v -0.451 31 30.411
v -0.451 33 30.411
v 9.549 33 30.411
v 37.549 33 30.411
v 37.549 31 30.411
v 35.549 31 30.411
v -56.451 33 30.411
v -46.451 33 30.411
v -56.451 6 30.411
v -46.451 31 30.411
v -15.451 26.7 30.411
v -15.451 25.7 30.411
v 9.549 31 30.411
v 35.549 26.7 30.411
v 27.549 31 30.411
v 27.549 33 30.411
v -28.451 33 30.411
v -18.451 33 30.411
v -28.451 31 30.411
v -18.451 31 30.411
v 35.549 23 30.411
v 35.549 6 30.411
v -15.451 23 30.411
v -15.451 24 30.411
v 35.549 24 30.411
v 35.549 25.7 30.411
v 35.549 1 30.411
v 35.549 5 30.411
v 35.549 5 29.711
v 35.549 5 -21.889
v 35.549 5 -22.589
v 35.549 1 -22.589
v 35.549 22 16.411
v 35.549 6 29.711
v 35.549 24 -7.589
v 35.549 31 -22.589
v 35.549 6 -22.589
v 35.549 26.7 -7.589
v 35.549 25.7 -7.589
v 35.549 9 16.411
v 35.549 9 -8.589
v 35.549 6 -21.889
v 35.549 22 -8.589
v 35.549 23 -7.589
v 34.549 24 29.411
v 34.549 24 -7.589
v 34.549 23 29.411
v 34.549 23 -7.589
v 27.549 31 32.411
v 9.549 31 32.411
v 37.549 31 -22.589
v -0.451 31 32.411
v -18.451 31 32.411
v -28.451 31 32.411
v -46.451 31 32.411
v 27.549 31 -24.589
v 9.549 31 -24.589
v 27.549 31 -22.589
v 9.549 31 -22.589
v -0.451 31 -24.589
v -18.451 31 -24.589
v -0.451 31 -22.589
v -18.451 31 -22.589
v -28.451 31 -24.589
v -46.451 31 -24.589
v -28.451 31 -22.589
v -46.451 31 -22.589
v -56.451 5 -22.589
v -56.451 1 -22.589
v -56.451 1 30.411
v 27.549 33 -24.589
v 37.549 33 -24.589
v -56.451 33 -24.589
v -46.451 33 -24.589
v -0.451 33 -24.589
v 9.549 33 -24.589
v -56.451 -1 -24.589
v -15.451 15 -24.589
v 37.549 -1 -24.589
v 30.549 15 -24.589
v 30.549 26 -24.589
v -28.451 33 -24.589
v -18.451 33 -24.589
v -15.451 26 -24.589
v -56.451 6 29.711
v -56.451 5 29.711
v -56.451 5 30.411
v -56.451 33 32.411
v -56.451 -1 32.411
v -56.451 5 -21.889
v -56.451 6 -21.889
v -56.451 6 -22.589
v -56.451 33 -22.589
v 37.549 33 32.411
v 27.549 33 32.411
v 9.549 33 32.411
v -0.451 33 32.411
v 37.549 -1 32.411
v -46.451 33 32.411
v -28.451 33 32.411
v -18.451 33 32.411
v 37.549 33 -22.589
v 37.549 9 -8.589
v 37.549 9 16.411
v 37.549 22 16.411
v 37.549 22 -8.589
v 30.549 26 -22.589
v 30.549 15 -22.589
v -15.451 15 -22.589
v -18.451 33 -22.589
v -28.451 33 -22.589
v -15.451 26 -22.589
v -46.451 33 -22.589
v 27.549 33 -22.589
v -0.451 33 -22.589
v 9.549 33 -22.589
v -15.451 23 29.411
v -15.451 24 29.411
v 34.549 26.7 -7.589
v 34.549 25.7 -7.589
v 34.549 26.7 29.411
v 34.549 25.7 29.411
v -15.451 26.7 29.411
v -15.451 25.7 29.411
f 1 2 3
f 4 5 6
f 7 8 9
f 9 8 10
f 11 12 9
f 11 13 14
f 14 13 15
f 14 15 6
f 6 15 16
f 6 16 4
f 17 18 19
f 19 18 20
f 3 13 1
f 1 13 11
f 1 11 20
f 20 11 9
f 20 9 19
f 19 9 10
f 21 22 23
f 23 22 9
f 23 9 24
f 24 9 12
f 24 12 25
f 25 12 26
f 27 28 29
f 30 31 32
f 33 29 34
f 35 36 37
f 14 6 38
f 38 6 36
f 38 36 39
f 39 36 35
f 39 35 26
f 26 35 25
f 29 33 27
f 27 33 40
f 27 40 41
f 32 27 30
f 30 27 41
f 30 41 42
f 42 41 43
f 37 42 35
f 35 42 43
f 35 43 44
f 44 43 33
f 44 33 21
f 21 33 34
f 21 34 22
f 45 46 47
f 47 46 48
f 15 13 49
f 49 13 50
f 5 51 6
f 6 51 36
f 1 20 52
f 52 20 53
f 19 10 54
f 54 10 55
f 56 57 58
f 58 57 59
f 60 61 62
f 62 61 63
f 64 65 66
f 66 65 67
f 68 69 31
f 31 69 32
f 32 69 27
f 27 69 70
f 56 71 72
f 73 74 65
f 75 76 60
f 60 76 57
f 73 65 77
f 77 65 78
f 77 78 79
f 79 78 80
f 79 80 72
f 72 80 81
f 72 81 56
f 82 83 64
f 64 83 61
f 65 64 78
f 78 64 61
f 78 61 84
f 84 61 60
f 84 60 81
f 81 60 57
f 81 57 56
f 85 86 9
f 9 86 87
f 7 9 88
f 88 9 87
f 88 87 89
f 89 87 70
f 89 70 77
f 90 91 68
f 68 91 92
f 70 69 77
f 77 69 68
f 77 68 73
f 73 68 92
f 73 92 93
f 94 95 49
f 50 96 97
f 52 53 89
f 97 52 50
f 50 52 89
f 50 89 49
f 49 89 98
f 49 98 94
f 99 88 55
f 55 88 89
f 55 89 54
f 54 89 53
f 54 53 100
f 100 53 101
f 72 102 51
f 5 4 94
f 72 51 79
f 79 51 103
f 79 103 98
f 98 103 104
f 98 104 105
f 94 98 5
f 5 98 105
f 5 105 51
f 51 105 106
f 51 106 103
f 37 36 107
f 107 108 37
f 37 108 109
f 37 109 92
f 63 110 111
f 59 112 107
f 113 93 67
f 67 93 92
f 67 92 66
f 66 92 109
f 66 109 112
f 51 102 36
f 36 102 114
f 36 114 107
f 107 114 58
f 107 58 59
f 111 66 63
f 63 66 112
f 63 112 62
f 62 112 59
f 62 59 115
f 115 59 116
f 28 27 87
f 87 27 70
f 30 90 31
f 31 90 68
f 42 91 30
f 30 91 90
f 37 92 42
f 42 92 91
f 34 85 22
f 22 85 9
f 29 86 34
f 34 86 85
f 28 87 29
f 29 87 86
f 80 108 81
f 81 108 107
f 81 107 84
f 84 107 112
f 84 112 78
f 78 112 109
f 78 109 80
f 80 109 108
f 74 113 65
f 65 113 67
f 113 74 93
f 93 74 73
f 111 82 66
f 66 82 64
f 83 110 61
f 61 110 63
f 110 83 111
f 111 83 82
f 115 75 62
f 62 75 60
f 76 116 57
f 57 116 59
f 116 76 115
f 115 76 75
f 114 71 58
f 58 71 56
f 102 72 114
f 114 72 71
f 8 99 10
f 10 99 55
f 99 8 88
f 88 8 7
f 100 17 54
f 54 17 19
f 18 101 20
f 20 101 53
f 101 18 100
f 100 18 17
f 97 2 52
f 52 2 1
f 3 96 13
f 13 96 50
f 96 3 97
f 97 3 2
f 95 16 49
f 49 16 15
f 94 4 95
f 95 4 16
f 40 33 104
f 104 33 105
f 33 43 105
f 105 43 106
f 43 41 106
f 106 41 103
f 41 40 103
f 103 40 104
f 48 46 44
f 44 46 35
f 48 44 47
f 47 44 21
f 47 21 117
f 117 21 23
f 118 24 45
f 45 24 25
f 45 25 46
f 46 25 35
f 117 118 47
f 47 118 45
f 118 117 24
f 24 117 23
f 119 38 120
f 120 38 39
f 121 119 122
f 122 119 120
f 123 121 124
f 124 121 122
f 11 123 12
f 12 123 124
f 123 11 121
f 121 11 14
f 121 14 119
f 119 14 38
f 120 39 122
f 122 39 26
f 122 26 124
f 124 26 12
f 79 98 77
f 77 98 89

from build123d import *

# Parameters (mm, degrees)
SKETCH1_W           = 94
SKETCH1_H           = 57
BOSS_EXTRUDE1_DEPTH = 1
BOSS_EXTRUDE3_DEPTH = 30
SKETCH5_W           = 0.7
SKETCH5_H           = 1
BOSS_EXTRUDE4_DEPTH = 92
SKETCH6_W           = 46
SKETCH6_H           = 11
CUT_EXTRUDE2_DEPTH  = 30
SKETCH7_W           = 10
SKETCH7_H           = 2
BOSS_EXTRUDE5_DEPTH = 2
SKETCH8_W           = 25
SKETCH8_H           = 13
CUT_EXTRUDE3_DEPTH  = 2
SKETCH9_W           = 38
SKETCH9_H           = 1
BOSS_EXTRUDE6_DEPTH = 1
SKETCH10_W          = 1
SKETCH10_H          = 1
BOSS_EXTRUDE7_DEPTH = 50
BOSS_EXTRUDE8_DEPTH = 1
SKETCH13_W          = 94
SKETCH13_H          = 57
BOSS_EXTRUDE9_DEPTH = 1


with BuildPart() as part:
    # Sketch1 → Boss-Extrude1 (new body)
    with BuildSketch(Plane(origin=(0, 0, 0), x_dir=(1, 0, 0), z_dir=(0, 1, 0))):
        with Locations((-9.450515464, -3.911340206)):
            Rectangle(SKETCH1_W, SKETCH1_H)
    extrude(amount=BOSS_EXTRUDE1_DEPTH)

    # Sketch2 → Boss-Extrude3 (add)
    with BuildSketch(Plane(origin=(0, 1, 0), x_dir=(1, 0, 0), z_dir=(0, 1, 0))):
        Polygon((-56.450515464, 24.588659794), (37.549484536, 24.588659794), (37.549484536, -32.411340206), (-56.450515464, -32.411340206), (-56.450515464, -30.411340206), (-54.450515464, -30.411340206), (35.549484536, -30.411340206), (35.549484536, 22.588659794), (-54.450515464, 22.588659794), (-56.450515464, 22.588659794), align=None)
    extrude(amount=BOSS_EXTRUDE3_DEPTH)

    # Sketch5 → Boss-Extrude4 (add)
    with BuildSketch(Plane.ZY.offset(56.450515464)):
        with Locations((-22.238659794, 5.5)):
            Rectangle(SKETCH5_W, SKETCH5_H)
        with Locations((30.061340206, 5.5)):
            Rectangle(SKETCH5_W, SKETCH5_H)
    extrude(amount=-BOSS_EXTRUDE4_DEPTH)

    # Sketch6 → Cut-Extrude2 (cut)
    with BuildSketch(Plane(origin=(0, 0, -24.588659794), x_dir=(-1, 0, 0), z_dir=(0, 0, -1))):
        with Locations((-7.549484536, 20.5)):
            Rectangle(SKETCH6_W, SKETCH6_H)
    extrude(amount=-CUT_EXTRUDE2_DEPTH, mode=Mode.SUBTRACT)

    # Sketch7 → Boss-Extrude5 (add)
    with BuildSketch(Plane(origin=(0, 31, 0), x_dir=(1, 0, 0), z_dir=(0, 1, 0))):
        with Locations((-51.450515464, 23.588659794)):
            Rectangle(SKETCH7_W, SKETCH7_H)
        with Locations((-23.450515464, 23.588659794)):
            Rectangle(SKETCH7_W, SKETCH7_H)
        with Locations((4.549484536, 23.588659794)):
            Rectangle(SKETCH7_W, SKETCH7_H)
        with Locations((32.549484536, 23.588659794)):
            Rectangle(SKETCH7_W, SKETCH7_H)
        with Locations((-51.450515464, -31.411340206)):
            Rectangle(SKETCH7_W, SKETCH7_H)
        with Locations((-23.450515464, -31.411340206)):
            Rectangle(SKETCH7_W, SKETCH7_H)
        with Locations((4.549484536, -31.411340206)):
            Rectangle(SKETCH7_W, SKETCH7_H)
        with Locations((32.549484536, -31.411340206)):
            Rectangle(SKETCH7_W, SKETCH7_H)
    extrude(amount=BOSS_EXTRUDE5_DEPTH)

    # Sketch8 → Cut-Extrude3 (cut)
    with BuildSketch(Plane(origin=(37.549484536, 0, 0), x_dir=(0, 0, -1), z_dir=(1, 0, 0))):
        with Locations((-3.911340206, 15.5)):
            Rectangle(SKETCH8_W, SKETCH8_H)
    extrude(amount=-CUT_EXTRUDE3_DEPTH, mode=Mode.SUBTRACT)

    # Sketch9 → Boss-Extrude6 (add)
    with BuildSketch(Plane.ZY.offset(-35.549484536)):
        with Locations((11.411340206, 23.5)):
            Rectangle(SKETCH9_W, SKETCH9_H)
    extrude(amount=BOSS_EXTRUDE6_DEPTH)

    # Sketch10 → Boss-Extrude7 (add)
    with BuildSketch(Plane.ZY.offset(-34.549484536)):
        with Locations((29.911340206, 23.5)):
            Rectangle(SKETCH10_W, SKETCH10_H)
    extrude(amount=BOSS_EXTRUDE7_DEPTH)

    # Sketch11 → Boss-Extrude8 (add)
    with BuildSketch(Plane(origin=(0, 25.7, 0), x_dir=(1, 0, 0), z_dir=(0, 1, 0))):
        Polygon((34.549484536, 7.588659794), (35.549484536, 7.588659794), (35.549484536, -30.411340206), (-15.450515464, -30.411340206), (-15.450515464, -29.411340206), (34.549484536, -29.411340206), align=None)
    extrude(amount=BOSS_EXTRUDE8_DEPTH)

    # Sketch13 → Boss-Extrude9 (add)
    with BuildSketch(Plane.XZ):
        with Locations((-9.450515464, 3.911340206)):
            Rectangle(SKETCH13_W, SKETCH13_H)
    extrude(amount=BOSS_EXTRUDE9_DEPTH)


solid = part.part
